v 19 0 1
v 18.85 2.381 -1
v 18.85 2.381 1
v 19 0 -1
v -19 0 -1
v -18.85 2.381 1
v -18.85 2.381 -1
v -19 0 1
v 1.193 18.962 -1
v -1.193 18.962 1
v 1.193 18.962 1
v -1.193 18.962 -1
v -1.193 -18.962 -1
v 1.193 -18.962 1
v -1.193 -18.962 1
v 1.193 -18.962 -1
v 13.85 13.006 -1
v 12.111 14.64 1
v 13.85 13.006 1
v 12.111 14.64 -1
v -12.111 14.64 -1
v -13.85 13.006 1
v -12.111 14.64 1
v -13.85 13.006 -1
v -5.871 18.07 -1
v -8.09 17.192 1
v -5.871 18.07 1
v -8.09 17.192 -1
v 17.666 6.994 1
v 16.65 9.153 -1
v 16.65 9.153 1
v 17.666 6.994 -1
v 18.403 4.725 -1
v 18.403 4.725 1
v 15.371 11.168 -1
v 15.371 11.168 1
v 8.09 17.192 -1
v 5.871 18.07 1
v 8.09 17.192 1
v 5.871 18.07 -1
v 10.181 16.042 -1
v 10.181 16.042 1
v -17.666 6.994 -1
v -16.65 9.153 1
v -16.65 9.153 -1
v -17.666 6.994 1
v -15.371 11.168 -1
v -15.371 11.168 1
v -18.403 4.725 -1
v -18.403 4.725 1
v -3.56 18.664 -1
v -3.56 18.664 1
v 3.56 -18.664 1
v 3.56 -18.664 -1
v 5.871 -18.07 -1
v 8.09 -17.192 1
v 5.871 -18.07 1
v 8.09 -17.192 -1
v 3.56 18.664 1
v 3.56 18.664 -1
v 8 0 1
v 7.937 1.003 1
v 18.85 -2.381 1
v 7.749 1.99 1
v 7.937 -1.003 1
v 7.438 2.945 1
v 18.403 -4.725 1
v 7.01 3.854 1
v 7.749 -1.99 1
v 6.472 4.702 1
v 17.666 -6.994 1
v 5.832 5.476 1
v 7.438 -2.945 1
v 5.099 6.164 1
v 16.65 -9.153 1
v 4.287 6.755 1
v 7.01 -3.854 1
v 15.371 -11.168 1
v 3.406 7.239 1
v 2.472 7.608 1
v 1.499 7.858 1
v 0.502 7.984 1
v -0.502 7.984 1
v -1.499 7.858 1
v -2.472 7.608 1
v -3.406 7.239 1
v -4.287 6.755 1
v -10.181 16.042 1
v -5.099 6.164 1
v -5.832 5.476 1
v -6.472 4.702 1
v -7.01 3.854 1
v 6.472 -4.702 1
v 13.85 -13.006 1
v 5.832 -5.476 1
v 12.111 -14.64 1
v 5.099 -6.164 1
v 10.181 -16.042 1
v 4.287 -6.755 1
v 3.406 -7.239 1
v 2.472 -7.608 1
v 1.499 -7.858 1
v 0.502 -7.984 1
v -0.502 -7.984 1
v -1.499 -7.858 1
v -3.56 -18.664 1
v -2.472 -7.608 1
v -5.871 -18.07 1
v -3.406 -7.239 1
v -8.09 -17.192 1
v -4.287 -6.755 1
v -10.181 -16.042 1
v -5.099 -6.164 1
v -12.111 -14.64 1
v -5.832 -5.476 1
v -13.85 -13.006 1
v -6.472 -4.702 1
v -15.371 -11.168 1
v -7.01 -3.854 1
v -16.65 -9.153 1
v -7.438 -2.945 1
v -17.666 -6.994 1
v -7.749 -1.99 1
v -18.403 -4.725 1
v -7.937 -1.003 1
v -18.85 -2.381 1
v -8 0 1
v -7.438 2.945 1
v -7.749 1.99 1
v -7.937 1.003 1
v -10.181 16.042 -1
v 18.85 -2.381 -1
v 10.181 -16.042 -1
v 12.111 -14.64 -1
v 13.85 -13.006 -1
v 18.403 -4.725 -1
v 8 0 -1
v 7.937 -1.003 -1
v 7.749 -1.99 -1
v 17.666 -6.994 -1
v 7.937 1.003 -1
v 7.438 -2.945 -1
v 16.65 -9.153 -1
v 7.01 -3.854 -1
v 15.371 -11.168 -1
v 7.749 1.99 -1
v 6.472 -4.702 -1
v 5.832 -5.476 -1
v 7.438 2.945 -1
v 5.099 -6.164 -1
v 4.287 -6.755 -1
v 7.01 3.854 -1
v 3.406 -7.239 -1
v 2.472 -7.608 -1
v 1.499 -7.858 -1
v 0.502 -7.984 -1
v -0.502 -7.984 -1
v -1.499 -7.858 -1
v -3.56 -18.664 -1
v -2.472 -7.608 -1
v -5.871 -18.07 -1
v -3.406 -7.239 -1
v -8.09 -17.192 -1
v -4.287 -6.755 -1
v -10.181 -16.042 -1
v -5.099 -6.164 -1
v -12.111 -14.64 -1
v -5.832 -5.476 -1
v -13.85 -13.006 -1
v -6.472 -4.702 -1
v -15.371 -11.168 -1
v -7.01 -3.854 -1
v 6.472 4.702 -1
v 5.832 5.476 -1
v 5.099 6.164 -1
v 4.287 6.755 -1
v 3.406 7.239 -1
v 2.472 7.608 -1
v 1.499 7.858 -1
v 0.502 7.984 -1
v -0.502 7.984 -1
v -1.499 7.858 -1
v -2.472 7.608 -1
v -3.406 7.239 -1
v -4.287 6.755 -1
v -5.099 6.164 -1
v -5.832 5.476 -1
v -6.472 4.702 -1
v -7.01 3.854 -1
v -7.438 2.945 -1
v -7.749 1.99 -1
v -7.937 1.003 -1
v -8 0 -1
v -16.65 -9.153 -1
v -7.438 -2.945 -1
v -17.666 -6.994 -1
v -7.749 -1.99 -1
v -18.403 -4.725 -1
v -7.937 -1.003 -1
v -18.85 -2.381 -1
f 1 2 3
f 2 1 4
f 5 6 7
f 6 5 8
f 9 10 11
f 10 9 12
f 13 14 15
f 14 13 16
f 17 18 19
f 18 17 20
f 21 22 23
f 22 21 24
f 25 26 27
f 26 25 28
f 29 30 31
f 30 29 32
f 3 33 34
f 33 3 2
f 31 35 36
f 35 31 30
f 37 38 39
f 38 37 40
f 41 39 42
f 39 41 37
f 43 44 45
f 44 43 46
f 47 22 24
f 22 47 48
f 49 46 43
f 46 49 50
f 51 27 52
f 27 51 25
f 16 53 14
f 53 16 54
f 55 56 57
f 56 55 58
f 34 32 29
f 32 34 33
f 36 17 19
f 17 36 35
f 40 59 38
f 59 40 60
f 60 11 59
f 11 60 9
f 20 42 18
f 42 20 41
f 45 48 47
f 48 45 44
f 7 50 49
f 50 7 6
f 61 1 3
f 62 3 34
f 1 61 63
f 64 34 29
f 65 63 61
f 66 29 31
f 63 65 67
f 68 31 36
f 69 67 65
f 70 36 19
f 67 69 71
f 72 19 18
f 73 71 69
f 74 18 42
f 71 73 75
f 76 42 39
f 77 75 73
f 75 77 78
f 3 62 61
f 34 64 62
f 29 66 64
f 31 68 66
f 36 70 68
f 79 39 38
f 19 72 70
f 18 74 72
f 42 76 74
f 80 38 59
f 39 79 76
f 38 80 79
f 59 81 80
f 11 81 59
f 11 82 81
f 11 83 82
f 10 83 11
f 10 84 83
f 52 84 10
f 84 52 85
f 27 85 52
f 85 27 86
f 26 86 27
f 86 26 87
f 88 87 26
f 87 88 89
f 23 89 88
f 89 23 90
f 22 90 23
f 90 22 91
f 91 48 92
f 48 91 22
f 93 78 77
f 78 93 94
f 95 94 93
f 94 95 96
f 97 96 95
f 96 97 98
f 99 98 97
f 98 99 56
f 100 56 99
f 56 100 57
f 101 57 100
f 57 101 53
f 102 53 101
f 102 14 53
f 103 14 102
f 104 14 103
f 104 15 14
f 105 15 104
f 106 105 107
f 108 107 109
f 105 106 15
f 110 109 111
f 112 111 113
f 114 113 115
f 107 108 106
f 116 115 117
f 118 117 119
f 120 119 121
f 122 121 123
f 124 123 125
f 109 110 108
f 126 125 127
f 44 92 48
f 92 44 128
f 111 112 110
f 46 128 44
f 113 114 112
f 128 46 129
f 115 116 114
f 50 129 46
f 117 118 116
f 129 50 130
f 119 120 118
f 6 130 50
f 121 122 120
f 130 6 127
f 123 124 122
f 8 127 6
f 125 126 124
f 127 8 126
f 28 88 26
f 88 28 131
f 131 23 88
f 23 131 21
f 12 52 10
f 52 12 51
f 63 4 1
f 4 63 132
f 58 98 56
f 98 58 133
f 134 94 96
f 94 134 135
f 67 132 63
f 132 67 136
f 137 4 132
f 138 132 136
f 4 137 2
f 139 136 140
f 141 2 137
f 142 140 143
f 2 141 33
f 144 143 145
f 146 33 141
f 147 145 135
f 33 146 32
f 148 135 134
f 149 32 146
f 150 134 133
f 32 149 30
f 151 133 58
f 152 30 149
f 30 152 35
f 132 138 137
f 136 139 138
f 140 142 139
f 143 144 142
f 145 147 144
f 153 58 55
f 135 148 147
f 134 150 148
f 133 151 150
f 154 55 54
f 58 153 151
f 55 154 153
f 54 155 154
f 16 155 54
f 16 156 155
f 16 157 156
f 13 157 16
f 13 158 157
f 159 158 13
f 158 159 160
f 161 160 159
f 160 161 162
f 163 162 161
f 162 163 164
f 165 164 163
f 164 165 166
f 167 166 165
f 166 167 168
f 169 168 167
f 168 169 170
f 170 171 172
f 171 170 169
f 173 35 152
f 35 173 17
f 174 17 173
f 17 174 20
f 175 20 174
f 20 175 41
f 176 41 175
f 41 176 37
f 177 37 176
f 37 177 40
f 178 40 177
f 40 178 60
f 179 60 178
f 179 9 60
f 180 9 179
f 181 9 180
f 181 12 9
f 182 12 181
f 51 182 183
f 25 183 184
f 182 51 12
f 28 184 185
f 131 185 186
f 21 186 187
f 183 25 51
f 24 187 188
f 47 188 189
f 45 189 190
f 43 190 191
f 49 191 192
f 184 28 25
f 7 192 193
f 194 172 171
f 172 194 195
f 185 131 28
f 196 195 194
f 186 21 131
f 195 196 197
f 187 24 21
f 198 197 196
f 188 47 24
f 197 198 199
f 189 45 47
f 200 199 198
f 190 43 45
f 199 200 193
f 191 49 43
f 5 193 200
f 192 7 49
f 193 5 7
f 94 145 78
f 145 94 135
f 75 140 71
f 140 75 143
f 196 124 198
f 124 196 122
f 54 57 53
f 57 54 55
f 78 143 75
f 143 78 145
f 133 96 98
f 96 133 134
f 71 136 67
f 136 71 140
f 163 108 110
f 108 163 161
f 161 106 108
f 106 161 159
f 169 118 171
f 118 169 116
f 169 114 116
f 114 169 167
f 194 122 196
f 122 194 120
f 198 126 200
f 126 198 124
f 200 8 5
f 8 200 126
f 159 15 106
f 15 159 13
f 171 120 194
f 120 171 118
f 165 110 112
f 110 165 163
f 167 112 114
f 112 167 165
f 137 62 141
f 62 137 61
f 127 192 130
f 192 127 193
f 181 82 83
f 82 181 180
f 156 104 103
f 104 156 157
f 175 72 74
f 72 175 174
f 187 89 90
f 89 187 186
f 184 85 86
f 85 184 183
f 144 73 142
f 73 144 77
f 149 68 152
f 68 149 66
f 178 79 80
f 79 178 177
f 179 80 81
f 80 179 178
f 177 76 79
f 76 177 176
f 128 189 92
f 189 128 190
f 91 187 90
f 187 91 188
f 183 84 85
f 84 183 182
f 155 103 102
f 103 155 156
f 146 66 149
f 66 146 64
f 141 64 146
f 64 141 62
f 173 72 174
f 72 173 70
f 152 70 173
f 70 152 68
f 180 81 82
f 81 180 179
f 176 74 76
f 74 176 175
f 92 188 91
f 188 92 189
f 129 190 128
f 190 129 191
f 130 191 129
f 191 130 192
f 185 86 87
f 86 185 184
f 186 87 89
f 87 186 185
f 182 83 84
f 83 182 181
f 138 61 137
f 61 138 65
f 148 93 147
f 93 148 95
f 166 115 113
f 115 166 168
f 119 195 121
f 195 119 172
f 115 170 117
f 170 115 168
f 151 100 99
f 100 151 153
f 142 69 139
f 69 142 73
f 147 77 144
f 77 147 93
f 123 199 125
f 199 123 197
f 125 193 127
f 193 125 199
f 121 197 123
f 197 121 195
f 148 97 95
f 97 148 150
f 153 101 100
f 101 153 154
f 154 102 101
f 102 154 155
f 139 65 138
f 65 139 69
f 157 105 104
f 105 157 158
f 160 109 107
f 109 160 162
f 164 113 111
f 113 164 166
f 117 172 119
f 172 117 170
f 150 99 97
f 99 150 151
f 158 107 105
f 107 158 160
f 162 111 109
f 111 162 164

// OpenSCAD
$fn = 50;


difference() {
	union() {
		translate(v = [0, 0, -1.0000000000]) {
			cylinder(h = 2, r = 19.0000000000);
		}
	}
	union() {
		translate(v = [0, 0, -100.0000000000]) {
			cylinder(h = 200, r = 8);
		}
	}
}
